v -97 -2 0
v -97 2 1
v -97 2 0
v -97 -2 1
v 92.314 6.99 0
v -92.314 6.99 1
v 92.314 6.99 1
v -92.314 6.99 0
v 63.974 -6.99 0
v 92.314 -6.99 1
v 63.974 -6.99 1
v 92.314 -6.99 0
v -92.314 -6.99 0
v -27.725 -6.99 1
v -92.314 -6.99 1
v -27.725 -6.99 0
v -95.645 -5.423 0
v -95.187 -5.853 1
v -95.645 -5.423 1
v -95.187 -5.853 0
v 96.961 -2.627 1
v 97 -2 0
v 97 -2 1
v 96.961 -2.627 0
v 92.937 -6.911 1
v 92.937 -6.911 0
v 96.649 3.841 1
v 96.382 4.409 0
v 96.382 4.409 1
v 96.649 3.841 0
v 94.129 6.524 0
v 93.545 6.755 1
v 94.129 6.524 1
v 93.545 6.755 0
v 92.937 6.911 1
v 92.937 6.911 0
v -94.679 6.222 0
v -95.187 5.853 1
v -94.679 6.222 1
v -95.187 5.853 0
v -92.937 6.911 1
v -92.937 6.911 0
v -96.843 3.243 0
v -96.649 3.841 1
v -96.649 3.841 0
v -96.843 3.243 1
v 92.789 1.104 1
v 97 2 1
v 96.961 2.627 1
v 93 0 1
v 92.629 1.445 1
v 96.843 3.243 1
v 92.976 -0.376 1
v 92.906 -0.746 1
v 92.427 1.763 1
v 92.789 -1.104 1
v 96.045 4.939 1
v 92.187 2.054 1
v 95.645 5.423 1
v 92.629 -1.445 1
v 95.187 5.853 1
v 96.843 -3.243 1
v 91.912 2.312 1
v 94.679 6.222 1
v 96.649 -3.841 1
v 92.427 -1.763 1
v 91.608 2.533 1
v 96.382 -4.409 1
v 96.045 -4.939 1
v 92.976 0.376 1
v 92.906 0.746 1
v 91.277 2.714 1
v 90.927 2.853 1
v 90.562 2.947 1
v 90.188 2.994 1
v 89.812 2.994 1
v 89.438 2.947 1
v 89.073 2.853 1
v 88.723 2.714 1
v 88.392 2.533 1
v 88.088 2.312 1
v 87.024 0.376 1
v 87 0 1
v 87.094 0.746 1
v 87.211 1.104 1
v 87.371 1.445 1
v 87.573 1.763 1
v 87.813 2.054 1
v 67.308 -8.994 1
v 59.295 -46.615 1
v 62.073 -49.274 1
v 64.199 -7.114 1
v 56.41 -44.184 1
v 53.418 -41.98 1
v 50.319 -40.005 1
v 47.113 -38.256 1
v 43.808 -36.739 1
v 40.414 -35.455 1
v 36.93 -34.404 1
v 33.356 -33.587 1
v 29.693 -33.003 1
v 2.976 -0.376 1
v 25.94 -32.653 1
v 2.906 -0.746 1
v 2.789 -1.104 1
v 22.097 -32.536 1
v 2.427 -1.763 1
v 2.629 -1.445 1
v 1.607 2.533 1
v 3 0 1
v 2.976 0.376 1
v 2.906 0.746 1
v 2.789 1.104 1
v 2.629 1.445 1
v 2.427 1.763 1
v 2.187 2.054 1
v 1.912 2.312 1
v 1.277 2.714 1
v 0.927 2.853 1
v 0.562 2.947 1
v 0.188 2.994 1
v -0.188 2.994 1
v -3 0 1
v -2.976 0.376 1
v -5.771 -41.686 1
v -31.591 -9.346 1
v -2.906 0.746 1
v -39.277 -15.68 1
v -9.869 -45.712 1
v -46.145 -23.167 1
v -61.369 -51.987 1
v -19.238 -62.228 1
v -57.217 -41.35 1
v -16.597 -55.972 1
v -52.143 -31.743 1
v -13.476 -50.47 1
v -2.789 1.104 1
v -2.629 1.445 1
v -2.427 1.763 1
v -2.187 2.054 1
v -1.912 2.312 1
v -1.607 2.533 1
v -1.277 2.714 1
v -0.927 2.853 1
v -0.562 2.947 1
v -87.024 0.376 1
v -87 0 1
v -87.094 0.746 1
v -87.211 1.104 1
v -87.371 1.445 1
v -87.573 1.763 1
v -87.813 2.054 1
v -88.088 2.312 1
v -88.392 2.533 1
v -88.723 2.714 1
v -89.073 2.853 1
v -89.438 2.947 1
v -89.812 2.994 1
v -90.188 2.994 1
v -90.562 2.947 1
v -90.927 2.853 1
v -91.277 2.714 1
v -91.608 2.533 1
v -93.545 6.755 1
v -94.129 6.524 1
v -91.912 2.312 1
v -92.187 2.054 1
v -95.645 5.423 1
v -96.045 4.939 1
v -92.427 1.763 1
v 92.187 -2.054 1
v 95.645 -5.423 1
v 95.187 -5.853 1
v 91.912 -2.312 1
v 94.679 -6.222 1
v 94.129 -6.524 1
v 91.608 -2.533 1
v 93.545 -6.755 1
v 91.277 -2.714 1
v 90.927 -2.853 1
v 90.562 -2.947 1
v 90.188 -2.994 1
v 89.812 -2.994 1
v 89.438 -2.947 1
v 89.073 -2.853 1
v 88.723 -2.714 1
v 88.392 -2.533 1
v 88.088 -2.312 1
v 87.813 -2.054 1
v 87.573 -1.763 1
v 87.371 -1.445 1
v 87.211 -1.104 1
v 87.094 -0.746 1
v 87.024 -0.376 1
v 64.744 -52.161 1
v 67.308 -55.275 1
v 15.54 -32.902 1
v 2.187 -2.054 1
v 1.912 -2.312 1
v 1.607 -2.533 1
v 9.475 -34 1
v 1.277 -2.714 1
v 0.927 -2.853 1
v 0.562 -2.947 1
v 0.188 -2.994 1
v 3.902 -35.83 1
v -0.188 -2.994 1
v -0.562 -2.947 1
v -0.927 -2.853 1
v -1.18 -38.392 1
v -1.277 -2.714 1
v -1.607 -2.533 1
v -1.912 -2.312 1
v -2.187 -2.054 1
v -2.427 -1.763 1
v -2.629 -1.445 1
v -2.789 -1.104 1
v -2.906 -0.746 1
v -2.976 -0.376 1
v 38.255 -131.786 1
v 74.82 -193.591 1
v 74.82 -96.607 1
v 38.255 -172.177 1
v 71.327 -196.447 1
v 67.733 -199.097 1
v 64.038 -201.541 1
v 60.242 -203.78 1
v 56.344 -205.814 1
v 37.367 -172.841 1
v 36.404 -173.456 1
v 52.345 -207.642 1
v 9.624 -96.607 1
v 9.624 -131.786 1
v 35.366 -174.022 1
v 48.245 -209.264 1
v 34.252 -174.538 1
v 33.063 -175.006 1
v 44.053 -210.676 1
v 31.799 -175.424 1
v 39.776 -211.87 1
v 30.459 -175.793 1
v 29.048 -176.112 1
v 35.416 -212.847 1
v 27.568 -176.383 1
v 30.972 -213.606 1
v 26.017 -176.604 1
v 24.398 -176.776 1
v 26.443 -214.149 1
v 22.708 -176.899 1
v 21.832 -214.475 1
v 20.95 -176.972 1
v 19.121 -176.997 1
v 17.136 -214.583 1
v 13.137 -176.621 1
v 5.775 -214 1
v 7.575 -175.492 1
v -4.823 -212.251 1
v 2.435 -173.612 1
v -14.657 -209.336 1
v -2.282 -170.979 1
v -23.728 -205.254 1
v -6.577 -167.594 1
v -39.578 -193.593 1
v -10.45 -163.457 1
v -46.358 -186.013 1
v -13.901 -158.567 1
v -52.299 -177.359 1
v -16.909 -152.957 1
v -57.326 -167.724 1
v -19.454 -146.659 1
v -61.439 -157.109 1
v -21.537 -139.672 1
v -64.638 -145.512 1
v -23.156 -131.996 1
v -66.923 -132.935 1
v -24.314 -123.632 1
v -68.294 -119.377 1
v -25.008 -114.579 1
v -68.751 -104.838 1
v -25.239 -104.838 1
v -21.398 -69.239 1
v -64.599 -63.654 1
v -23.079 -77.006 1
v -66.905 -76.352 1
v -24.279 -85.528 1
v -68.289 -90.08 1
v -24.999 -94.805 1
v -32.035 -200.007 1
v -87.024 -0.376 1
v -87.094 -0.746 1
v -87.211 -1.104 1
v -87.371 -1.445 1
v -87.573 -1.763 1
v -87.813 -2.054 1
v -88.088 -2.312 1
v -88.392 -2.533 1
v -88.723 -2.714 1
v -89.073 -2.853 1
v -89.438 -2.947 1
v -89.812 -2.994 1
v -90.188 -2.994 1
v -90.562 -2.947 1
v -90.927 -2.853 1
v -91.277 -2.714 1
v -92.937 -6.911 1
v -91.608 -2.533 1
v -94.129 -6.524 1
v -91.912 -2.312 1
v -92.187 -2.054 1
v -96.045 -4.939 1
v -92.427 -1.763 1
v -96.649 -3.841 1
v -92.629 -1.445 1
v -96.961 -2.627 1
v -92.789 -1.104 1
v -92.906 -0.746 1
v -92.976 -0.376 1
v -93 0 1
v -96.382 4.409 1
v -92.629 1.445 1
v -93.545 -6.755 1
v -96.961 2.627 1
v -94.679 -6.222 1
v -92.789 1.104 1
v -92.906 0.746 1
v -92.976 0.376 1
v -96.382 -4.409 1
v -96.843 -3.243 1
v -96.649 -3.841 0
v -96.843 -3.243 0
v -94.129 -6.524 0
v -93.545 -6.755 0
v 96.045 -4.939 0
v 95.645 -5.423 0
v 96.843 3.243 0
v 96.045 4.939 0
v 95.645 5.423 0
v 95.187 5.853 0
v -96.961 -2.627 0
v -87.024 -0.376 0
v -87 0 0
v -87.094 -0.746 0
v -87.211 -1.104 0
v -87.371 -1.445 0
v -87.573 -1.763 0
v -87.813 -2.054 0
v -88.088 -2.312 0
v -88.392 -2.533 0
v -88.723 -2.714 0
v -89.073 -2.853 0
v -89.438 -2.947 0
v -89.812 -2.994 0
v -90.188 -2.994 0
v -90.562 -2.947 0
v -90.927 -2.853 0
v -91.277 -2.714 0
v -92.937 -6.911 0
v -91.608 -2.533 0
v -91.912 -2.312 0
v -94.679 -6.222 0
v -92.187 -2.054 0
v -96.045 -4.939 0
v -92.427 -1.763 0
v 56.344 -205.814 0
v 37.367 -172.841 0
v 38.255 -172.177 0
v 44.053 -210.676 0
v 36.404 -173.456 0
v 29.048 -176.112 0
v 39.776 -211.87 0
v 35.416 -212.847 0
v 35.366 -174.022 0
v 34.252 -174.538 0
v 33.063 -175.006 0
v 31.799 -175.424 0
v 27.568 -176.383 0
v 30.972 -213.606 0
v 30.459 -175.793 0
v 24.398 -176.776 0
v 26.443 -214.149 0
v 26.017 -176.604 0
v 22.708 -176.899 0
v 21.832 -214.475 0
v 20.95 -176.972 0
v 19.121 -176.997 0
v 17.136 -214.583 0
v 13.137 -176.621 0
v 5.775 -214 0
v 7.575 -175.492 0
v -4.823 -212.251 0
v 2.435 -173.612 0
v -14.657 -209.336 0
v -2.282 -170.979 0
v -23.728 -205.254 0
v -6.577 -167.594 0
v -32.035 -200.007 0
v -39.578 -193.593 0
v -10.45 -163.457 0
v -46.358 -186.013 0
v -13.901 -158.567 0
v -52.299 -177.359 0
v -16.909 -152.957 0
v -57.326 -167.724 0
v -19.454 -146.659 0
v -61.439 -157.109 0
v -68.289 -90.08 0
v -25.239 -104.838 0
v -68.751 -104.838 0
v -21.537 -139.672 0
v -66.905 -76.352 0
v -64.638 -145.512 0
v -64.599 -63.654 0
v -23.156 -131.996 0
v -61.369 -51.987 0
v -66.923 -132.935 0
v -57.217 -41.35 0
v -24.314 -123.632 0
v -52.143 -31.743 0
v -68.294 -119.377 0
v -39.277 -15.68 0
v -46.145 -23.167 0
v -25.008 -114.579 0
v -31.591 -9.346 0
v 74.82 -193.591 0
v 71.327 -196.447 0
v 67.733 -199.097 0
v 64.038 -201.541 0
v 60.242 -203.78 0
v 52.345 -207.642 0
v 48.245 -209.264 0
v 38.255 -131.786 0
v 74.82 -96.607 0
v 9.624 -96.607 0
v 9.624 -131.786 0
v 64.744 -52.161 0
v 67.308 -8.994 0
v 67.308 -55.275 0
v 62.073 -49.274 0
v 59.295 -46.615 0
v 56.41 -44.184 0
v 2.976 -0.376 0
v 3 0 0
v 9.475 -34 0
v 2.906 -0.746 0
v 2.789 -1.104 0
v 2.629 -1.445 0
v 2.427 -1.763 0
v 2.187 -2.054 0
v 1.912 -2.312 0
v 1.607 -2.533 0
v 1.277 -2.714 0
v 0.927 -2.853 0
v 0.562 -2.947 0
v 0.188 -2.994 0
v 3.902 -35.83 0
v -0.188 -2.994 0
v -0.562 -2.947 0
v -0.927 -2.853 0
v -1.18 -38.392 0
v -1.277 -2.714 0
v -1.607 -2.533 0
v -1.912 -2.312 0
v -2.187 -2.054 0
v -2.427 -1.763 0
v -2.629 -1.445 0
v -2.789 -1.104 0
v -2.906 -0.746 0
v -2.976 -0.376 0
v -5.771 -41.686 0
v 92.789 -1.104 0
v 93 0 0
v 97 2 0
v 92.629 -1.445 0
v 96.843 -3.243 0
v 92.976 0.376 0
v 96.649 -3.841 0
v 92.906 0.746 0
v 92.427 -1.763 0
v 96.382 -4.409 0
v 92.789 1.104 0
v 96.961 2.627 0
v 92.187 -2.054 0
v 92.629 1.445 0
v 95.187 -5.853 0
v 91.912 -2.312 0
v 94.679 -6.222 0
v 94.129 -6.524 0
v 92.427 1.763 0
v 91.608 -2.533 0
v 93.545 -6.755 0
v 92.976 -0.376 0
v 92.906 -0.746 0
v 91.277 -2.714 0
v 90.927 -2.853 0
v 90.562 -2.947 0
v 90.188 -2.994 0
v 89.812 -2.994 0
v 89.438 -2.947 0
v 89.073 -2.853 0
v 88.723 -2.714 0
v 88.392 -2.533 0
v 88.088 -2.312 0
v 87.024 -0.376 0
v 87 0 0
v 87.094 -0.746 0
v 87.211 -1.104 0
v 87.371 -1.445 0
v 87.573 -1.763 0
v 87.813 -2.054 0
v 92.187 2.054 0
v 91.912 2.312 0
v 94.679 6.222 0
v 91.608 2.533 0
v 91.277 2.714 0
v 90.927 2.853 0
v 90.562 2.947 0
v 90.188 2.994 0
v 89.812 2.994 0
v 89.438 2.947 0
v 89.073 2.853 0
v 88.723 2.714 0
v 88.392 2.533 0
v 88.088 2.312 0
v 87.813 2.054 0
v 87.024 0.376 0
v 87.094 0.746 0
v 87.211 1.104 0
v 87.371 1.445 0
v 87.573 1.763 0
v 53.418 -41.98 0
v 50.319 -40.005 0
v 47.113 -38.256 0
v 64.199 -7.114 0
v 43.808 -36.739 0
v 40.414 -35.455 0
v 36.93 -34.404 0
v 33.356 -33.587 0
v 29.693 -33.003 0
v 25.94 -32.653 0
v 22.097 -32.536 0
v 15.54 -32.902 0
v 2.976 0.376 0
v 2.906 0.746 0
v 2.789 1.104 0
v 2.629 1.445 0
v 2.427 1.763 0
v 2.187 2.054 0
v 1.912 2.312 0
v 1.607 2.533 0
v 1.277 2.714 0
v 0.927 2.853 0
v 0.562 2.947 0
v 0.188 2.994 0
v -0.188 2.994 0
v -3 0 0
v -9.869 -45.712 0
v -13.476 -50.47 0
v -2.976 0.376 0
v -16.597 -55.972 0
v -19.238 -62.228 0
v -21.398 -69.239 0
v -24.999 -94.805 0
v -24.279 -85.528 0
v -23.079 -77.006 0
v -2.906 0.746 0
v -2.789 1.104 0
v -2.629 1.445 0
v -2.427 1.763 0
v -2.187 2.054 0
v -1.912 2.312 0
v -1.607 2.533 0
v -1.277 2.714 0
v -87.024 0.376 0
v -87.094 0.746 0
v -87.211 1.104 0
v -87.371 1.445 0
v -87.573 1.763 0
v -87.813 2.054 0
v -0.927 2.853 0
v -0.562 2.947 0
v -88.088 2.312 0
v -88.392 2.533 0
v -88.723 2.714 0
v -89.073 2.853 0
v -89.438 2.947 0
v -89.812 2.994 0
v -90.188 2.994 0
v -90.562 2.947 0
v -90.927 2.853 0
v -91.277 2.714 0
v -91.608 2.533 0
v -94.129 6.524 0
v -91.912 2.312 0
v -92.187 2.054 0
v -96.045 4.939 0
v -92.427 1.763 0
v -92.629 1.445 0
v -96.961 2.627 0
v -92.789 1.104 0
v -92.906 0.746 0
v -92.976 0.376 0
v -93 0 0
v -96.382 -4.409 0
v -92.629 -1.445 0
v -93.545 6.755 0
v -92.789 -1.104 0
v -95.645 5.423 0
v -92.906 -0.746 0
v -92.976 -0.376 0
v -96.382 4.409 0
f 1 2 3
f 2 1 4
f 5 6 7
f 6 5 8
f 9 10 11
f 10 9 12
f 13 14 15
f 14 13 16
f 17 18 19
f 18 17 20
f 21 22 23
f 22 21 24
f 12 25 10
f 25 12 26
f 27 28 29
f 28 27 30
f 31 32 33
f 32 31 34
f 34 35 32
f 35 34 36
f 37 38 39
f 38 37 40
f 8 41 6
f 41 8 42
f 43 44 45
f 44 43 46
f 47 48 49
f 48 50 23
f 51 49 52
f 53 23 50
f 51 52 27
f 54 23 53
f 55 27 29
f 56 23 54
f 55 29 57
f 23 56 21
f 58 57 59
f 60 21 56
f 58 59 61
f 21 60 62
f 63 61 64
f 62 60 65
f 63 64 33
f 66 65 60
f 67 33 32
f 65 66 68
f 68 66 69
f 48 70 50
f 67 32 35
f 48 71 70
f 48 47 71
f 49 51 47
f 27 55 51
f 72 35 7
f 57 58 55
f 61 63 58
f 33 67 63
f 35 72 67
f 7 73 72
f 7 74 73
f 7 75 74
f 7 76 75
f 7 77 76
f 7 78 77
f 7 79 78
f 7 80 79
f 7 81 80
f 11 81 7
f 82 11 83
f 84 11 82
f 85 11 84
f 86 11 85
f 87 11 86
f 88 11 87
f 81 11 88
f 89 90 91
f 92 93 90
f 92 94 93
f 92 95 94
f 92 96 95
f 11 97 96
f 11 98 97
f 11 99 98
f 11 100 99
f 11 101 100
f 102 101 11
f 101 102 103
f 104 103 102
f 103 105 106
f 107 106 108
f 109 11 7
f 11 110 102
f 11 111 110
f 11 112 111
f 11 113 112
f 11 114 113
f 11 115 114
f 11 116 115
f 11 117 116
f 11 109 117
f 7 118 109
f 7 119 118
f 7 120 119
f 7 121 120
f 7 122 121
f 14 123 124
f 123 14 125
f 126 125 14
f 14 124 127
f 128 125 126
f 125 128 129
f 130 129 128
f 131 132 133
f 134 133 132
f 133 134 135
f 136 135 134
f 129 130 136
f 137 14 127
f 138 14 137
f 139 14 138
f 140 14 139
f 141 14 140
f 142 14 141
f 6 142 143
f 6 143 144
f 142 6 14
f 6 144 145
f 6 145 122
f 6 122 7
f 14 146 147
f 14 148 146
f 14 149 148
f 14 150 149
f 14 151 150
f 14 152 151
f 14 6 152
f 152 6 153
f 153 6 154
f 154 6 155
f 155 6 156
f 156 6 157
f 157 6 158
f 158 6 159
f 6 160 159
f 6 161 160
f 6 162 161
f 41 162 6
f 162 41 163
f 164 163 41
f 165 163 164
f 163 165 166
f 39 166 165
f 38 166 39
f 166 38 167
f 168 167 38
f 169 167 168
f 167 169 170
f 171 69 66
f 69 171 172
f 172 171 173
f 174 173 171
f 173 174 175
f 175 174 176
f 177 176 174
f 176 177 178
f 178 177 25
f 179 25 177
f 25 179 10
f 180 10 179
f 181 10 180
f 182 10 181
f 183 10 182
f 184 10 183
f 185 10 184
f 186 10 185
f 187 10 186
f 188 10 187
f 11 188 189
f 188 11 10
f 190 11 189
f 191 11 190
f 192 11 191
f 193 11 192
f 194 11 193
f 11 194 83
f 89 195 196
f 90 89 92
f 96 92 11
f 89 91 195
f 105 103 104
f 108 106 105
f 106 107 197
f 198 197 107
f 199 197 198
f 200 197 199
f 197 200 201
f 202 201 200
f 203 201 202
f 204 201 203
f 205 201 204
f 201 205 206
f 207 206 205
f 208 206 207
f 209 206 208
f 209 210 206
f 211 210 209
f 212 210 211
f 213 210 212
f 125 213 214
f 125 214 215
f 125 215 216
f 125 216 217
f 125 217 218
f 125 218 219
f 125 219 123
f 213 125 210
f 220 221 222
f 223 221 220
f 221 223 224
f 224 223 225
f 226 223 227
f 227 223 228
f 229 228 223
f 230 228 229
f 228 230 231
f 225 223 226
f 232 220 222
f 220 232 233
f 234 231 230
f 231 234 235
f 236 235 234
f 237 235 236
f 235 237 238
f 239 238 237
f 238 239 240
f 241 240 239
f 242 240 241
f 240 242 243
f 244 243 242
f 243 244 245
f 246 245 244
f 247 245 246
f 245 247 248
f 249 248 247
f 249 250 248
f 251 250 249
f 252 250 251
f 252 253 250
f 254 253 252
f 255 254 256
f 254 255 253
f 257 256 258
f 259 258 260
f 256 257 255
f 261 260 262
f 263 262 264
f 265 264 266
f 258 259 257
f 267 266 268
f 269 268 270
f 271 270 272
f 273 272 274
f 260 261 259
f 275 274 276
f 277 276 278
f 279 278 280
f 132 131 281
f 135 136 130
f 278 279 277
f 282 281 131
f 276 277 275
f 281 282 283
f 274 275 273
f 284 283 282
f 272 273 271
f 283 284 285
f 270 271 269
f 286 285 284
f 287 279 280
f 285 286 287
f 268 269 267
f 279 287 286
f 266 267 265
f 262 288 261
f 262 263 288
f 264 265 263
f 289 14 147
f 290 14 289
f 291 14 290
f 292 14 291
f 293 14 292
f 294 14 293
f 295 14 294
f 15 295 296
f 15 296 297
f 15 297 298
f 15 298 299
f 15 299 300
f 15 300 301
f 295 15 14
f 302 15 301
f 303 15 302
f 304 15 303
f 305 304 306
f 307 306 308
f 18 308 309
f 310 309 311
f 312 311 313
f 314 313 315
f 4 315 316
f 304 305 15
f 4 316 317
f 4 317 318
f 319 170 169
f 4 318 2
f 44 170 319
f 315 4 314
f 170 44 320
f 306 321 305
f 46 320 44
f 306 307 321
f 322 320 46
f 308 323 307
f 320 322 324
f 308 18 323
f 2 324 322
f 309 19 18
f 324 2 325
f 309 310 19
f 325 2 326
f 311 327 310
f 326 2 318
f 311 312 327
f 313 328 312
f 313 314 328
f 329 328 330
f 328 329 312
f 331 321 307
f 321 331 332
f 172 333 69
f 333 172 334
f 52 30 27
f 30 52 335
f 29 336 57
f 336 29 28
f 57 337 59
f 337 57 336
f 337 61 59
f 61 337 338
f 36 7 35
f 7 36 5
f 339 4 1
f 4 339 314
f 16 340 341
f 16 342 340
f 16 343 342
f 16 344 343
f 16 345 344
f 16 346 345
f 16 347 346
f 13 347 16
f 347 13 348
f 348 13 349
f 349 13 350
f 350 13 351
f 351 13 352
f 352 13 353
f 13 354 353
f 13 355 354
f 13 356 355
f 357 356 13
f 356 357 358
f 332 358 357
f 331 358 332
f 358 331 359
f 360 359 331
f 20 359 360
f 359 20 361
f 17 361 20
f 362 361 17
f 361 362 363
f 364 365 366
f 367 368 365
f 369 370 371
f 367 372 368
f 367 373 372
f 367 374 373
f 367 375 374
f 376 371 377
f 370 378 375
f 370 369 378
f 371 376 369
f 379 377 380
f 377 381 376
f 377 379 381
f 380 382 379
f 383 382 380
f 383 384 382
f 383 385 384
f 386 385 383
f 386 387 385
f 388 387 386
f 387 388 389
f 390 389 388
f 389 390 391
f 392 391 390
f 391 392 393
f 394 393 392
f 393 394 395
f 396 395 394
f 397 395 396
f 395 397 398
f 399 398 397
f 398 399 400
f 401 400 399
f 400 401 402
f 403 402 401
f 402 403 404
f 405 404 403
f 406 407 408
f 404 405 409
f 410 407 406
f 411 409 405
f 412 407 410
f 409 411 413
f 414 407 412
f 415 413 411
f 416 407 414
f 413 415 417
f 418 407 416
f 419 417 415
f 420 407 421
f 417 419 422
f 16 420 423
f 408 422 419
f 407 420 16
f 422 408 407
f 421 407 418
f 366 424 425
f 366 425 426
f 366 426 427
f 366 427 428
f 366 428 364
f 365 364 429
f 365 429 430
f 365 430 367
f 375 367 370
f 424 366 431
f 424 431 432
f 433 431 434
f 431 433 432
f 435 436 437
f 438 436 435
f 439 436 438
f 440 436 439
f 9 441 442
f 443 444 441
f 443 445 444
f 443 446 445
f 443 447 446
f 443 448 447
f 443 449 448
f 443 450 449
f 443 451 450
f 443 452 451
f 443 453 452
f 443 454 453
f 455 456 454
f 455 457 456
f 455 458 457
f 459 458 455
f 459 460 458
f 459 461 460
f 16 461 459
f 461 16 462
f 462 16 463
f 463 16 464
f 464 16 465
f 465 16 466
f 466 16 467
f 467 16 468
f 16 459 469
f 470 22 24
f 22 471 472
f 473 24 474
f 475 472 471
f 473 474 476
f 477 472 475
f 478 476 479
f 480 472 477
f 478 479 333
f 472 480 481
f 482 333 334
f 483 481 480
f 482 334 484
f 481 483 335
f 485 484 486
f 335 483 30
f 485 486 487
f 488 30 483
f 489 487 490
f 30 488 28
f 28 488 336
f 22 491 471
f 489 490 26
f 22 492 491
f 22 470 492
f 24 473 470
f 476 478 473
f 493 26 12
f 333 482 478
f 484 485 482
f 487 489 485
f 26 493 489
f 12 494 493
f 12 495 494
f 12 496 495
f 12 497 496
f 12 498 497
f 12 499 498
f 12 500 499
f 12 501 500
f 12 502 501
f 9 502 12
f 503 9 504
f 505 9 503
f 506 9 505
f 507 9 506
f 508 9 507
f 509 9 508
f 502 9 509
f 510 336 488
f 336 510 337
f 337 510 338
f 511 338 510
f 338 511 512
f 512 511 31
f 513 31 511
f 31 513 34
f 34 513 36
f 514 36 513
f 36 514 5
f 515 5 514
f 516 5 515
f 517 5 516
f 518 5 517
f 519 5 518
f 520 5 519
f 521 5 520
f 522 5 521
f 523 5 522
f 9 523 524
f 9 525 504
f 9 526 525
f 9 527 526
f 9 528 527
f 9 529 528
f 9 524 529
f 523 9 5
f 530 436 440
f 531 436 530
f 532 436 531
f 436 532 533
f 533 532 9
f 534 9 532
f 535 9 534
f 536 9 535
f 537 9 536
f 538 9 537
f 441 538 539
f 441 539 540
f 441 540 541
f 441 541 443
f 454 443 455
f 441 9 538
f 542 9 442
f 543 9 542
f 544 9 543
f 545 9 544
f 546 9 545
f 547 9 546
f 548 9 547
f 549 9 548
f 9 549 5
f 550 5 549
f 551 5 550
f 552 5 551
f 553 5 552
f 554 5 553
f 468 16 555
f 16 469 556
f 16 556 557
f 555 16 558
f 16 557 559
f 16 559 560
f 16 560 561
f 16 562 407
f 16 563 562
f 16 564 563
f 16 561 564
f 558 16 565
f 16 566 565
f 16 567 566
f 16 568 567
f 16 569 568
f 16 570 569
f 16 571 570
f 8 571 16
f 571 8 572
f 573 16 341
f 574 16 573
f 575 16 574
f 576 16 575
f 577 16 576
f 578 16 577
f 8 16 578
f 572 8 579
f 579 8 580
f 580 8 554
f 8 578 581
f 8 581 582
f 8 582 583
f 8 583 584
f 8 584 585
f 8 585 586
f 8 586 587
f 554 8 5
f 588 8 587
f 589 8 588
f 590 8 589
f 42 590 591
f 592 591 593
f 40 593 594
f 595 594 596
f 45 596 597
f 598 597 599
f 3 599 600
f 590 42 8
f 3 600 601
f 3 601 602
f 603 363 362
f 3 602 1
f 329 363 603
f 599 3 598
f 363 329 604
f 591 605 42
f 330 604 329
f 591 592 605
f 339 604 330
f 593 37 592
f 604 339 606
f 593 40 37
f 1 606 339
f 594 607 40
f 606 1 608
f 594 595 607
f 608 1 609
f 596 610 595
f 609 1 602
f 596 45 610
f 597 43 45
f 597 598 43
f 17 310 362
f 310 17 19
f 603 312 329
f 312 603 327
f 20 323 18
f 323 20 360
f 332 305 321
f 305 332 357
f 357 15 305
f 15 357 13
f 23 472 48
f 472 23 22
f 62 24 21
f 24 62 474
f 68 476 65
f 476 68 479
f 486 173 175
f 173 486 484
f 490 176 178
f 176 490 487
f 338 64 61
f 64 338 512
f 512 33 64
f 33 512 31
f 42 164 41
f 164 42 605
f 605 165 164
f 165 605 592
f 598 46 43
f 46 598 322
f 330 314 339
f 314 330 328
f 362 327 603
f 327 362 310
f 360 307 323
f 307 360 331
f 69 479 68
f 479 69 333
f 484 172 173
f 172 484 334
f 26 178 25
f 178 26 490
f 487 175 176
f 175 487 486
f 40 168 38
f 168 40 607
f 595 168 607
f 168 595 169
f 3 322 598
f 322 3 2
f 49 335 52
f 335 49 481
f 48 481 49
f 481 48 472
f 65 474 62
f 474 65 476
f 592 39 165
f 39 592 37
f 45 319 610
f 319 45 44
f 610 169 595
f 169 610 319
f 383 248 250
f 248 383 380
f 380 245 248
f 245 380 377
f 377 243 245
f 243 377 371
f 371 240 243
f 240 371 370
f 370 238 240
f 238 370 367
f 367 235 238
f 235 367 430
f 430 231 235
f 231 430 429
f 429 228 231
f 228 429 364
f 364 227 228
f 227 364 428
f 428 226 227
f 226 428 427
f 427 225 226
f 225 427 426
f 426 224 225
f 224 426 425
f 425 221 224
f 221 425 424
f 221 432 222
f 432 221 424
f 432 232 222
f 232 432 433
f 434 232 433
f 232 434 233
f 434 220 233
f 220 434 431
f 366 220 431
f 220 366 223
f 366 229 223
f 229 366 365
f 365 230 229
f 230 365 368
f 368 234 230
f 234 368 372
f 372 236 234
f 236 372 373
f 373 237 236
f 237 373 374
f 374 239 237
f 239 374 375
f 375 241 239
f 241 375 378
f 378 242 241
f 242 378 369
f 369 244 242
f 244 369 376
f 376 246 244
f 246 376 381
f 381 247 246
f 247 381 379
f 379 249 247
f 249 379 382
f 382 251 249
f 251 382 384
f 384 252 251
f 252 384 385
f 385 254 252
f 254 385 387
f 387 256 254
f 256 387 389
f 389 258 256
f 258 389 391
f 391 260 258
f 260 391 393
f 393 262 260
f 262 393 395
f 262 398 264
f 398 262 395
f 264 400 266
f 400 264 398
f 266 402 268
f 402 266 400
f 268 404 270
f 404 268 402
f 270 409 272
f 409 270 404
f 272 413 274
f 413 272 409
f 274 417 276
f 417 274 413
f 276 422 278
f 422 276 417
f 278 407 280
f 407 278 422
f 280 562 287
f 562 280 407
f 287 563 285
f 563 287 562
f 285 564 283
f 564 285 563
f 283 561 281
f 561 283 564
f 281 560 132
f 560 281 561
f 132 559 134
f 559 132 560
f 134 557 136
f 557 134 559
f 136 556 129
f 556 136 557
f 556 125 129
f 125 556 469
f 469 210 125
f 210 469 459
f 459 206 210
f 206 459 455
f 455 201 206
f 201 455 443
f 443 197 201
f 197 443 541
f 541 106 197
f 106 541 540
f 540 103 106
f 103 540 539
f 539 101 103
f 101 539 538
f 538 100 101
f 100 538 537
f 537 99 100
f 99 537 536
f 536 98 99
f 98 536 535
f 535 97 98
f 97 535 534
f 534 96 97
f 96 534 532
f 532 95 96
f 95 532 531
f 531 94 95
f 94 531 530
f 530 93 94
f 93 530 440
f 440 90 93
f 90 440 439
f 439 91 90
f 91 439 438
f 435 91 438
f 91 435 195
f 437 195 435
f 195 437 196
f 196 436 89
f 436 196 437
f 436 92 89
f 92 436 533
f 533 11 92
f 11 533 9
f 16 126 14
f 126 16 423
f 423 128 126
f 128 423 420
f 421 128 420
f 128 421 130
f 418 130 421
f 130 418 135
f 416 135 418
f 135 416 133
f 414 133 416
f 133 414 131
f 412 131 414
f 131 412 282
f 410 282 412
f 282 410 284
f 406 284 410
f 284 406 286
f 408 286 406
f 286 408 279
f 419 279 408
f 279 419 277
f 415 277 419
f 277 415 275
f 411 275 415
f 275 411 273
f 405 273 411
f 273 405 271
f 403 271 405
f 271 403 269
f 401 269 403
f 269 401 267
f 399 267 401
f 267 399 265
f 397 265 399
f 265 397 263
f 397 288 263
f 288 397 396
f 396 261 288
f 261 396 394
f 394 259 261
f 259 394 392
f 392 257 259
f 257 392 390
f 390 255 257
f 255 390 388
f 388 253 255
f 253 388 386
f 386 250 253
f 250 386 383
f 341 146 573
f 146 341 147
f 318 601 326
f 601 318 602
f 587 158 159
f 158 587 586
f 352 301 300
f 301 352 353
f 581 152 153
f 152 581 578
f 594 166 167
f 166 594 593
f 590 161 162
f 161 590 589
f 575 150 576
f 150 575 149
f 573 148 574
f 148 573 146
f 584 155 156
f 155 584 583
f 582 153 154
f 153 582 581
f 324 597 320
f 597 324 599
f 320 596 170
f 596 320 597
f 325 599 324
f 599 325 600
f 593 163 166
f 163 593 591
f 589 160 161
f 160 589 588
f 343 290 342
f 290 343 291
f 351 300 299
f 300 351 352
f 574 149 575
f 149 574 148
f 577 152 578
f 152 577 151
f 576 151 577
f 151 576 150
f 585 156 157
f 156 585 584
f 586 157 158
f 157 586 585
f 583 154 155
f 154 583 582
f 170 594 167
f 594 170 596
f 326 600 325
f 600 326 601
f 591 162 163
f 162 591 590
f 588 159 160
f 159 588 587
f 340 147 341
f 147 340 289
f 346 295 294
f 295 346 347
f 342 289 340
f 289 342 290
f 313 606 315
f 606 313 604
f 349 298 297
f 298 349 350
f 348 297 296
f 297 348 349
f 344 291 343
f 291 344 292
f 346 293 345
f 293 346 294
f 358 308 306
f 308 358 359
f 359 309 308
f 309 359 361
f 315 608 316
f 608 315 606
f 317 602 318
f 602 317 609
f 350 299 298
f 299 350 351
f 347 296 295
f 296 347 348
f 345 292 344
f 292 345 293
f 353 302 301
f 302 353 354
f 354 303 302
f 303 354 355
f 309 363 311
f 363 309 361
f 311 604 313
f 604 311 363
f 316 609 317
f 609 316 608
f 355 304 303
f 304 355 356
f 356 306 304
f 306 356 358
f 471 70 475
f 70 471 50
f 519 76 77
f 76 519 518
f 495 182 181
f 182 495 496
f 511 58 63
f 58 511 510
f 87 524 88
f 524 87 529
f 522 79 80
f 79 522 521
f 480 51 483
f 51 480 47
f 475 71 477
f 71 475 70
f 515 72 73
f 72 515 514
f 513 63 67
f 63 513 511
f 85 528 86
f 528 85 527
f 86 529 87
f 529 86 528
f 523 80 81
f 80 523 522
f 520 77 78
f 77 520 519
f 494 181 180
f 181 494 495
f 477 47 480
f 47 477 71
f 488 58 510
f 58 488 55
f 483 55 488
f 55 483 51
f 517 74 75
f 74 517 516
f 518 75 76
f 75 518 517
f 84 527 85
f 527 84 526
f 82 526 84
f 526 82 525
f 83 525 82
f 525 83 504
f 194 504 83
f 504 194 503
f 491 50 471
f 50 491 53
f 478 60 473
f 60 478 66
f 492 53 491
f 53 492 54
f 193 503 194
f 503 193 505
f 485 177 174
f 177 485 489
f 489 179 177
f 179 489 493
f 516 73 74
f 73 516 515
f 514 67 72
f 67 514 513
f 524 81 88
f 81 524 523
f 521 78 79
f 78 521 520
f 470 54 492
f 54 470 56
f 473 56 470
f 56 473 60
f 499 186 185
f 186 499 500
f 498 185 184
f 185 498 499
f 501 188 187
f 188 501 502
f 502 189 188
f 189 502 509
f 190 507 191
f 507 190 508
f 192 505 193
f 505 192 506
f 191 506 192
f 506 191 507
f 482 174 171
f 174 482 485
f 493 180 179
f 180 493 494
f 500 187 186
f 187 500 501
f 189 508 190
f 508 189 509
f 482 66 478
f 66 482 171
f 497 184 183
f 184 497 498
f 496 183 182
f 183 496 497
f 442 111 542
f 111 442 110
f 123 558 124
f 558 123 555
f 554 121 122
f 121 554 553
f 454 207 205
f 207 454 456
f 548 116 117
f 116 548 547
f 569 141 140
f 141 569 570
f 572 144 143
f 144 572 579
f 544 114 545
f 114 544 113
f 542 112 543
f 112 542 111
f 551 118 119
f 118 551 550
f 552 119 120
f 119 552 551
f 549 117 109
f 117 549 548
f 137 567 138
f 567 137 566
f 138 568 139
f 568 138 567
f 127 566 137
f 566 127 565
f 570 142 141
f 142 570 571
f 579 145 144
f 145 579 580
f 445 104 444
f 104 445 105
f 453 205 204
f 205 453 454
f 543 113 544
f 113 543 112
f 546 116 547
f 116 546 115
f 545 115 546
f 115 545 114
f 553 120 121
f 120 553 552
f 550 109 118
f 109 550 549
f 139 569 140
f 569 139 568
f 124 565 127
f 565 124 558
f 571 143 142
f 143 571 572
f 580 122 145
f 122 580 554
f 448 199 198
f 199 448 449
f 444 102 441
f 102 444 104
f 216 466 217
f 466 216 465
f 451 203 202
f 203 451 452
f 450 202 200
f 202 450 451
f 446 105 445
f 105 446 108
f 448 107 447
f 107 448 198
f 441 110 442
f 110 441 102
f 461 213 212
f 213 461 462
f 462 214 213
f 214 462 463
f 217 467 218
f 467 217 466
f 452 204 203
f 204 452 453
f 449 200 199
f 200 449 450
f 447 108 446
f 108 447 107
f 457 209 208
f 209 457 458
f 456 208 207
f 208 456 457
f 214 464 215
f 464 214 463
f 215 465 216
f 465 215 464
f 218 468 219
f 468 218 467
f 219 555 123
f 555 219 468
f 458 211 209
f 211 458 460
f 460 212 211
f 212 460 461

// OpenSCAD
$fn = 50;


difference() {
	union() {
		translate(v = [0, 0, 0]) {
			rotate(a = [0, 0, 0]) {
				hull() {
					translate(v = [-92.0000000000, 2.0000000000, 0]) {
						rotate(a = [0, 0, 0]) {
							translate(v = [0, 0, 0]) {
								rotate(a = [0, 0, 0]) {
									cylinder(h = 1, r = 5);
								}
							}
						}
					}
					translate(v = [92.0000000000, 2.0000000000, 0]) {
						rotate(a = [0, 0, 0]) {
							translate(v = [0, 0, 0]) {
								rotate(a = [0, 0, 0]) {
									cylinder(h = 1, r = 5);
								}
							}
						}
					}
					translate(v = [-92.0000000000, -2.0000000000, 0]) {
						rotate(a = [0, 0, 0]) {
							translate(v = [0, 0, 0]) {
								rotate(a = [0, 0, 0]) {
									cylinder(h = 1, r = 5);
								}
							}
						}
					}
					translate(v = [92.0000000000, -2.0000000000, 0]) {
						rotate(a = [0, 0, 0]) {
							translate(v = [0, 0, 0]) {
								rotate(a = [0, 0, 0]) {
									cylinder(h = 1, r = 5);
								}
							}
						}
					}
				}
			}
		}
		translate(v = [0, 0, 0]) {
			rotate(a = [0, 0, 0]) {
				linear_extrude(height = 1) {
					text(font = "DejaVu Sans Mono:style=Bold", halign = "center", size = 209.0000000000, text = "G", valign = "top");
				}
			}
		}
	}
	union() {
		translate(v = [-90.0000000000, 0.0000000000, -125.0000000000]) {
			rotate(a = [0, 0, 0]) {
				cylinder(h = 250, r = 3.0000000000);
			}
		}
		translate(v = [90.0000000000, 0.0000000000, -125.0000000000]) {
			rotate(a = [0, 0, 0]) {
				cylinder(h = 250, r = 3.0000000000);
			}
		}
		translate(v = [90.0000000000, 0.0000000000, -125.0000000000]) {
			rotate(a = [0, 0, 0]) {
				cylinder(h = 250, r = 3.0000000000);
			}
		}
		translate(v = [0, 0, -125.0000000000]) {
			rotate(a = [0, 0, 0]) {
				cylinder(h = 250, r = 3.0000000000);
			}
		}
	}
}
